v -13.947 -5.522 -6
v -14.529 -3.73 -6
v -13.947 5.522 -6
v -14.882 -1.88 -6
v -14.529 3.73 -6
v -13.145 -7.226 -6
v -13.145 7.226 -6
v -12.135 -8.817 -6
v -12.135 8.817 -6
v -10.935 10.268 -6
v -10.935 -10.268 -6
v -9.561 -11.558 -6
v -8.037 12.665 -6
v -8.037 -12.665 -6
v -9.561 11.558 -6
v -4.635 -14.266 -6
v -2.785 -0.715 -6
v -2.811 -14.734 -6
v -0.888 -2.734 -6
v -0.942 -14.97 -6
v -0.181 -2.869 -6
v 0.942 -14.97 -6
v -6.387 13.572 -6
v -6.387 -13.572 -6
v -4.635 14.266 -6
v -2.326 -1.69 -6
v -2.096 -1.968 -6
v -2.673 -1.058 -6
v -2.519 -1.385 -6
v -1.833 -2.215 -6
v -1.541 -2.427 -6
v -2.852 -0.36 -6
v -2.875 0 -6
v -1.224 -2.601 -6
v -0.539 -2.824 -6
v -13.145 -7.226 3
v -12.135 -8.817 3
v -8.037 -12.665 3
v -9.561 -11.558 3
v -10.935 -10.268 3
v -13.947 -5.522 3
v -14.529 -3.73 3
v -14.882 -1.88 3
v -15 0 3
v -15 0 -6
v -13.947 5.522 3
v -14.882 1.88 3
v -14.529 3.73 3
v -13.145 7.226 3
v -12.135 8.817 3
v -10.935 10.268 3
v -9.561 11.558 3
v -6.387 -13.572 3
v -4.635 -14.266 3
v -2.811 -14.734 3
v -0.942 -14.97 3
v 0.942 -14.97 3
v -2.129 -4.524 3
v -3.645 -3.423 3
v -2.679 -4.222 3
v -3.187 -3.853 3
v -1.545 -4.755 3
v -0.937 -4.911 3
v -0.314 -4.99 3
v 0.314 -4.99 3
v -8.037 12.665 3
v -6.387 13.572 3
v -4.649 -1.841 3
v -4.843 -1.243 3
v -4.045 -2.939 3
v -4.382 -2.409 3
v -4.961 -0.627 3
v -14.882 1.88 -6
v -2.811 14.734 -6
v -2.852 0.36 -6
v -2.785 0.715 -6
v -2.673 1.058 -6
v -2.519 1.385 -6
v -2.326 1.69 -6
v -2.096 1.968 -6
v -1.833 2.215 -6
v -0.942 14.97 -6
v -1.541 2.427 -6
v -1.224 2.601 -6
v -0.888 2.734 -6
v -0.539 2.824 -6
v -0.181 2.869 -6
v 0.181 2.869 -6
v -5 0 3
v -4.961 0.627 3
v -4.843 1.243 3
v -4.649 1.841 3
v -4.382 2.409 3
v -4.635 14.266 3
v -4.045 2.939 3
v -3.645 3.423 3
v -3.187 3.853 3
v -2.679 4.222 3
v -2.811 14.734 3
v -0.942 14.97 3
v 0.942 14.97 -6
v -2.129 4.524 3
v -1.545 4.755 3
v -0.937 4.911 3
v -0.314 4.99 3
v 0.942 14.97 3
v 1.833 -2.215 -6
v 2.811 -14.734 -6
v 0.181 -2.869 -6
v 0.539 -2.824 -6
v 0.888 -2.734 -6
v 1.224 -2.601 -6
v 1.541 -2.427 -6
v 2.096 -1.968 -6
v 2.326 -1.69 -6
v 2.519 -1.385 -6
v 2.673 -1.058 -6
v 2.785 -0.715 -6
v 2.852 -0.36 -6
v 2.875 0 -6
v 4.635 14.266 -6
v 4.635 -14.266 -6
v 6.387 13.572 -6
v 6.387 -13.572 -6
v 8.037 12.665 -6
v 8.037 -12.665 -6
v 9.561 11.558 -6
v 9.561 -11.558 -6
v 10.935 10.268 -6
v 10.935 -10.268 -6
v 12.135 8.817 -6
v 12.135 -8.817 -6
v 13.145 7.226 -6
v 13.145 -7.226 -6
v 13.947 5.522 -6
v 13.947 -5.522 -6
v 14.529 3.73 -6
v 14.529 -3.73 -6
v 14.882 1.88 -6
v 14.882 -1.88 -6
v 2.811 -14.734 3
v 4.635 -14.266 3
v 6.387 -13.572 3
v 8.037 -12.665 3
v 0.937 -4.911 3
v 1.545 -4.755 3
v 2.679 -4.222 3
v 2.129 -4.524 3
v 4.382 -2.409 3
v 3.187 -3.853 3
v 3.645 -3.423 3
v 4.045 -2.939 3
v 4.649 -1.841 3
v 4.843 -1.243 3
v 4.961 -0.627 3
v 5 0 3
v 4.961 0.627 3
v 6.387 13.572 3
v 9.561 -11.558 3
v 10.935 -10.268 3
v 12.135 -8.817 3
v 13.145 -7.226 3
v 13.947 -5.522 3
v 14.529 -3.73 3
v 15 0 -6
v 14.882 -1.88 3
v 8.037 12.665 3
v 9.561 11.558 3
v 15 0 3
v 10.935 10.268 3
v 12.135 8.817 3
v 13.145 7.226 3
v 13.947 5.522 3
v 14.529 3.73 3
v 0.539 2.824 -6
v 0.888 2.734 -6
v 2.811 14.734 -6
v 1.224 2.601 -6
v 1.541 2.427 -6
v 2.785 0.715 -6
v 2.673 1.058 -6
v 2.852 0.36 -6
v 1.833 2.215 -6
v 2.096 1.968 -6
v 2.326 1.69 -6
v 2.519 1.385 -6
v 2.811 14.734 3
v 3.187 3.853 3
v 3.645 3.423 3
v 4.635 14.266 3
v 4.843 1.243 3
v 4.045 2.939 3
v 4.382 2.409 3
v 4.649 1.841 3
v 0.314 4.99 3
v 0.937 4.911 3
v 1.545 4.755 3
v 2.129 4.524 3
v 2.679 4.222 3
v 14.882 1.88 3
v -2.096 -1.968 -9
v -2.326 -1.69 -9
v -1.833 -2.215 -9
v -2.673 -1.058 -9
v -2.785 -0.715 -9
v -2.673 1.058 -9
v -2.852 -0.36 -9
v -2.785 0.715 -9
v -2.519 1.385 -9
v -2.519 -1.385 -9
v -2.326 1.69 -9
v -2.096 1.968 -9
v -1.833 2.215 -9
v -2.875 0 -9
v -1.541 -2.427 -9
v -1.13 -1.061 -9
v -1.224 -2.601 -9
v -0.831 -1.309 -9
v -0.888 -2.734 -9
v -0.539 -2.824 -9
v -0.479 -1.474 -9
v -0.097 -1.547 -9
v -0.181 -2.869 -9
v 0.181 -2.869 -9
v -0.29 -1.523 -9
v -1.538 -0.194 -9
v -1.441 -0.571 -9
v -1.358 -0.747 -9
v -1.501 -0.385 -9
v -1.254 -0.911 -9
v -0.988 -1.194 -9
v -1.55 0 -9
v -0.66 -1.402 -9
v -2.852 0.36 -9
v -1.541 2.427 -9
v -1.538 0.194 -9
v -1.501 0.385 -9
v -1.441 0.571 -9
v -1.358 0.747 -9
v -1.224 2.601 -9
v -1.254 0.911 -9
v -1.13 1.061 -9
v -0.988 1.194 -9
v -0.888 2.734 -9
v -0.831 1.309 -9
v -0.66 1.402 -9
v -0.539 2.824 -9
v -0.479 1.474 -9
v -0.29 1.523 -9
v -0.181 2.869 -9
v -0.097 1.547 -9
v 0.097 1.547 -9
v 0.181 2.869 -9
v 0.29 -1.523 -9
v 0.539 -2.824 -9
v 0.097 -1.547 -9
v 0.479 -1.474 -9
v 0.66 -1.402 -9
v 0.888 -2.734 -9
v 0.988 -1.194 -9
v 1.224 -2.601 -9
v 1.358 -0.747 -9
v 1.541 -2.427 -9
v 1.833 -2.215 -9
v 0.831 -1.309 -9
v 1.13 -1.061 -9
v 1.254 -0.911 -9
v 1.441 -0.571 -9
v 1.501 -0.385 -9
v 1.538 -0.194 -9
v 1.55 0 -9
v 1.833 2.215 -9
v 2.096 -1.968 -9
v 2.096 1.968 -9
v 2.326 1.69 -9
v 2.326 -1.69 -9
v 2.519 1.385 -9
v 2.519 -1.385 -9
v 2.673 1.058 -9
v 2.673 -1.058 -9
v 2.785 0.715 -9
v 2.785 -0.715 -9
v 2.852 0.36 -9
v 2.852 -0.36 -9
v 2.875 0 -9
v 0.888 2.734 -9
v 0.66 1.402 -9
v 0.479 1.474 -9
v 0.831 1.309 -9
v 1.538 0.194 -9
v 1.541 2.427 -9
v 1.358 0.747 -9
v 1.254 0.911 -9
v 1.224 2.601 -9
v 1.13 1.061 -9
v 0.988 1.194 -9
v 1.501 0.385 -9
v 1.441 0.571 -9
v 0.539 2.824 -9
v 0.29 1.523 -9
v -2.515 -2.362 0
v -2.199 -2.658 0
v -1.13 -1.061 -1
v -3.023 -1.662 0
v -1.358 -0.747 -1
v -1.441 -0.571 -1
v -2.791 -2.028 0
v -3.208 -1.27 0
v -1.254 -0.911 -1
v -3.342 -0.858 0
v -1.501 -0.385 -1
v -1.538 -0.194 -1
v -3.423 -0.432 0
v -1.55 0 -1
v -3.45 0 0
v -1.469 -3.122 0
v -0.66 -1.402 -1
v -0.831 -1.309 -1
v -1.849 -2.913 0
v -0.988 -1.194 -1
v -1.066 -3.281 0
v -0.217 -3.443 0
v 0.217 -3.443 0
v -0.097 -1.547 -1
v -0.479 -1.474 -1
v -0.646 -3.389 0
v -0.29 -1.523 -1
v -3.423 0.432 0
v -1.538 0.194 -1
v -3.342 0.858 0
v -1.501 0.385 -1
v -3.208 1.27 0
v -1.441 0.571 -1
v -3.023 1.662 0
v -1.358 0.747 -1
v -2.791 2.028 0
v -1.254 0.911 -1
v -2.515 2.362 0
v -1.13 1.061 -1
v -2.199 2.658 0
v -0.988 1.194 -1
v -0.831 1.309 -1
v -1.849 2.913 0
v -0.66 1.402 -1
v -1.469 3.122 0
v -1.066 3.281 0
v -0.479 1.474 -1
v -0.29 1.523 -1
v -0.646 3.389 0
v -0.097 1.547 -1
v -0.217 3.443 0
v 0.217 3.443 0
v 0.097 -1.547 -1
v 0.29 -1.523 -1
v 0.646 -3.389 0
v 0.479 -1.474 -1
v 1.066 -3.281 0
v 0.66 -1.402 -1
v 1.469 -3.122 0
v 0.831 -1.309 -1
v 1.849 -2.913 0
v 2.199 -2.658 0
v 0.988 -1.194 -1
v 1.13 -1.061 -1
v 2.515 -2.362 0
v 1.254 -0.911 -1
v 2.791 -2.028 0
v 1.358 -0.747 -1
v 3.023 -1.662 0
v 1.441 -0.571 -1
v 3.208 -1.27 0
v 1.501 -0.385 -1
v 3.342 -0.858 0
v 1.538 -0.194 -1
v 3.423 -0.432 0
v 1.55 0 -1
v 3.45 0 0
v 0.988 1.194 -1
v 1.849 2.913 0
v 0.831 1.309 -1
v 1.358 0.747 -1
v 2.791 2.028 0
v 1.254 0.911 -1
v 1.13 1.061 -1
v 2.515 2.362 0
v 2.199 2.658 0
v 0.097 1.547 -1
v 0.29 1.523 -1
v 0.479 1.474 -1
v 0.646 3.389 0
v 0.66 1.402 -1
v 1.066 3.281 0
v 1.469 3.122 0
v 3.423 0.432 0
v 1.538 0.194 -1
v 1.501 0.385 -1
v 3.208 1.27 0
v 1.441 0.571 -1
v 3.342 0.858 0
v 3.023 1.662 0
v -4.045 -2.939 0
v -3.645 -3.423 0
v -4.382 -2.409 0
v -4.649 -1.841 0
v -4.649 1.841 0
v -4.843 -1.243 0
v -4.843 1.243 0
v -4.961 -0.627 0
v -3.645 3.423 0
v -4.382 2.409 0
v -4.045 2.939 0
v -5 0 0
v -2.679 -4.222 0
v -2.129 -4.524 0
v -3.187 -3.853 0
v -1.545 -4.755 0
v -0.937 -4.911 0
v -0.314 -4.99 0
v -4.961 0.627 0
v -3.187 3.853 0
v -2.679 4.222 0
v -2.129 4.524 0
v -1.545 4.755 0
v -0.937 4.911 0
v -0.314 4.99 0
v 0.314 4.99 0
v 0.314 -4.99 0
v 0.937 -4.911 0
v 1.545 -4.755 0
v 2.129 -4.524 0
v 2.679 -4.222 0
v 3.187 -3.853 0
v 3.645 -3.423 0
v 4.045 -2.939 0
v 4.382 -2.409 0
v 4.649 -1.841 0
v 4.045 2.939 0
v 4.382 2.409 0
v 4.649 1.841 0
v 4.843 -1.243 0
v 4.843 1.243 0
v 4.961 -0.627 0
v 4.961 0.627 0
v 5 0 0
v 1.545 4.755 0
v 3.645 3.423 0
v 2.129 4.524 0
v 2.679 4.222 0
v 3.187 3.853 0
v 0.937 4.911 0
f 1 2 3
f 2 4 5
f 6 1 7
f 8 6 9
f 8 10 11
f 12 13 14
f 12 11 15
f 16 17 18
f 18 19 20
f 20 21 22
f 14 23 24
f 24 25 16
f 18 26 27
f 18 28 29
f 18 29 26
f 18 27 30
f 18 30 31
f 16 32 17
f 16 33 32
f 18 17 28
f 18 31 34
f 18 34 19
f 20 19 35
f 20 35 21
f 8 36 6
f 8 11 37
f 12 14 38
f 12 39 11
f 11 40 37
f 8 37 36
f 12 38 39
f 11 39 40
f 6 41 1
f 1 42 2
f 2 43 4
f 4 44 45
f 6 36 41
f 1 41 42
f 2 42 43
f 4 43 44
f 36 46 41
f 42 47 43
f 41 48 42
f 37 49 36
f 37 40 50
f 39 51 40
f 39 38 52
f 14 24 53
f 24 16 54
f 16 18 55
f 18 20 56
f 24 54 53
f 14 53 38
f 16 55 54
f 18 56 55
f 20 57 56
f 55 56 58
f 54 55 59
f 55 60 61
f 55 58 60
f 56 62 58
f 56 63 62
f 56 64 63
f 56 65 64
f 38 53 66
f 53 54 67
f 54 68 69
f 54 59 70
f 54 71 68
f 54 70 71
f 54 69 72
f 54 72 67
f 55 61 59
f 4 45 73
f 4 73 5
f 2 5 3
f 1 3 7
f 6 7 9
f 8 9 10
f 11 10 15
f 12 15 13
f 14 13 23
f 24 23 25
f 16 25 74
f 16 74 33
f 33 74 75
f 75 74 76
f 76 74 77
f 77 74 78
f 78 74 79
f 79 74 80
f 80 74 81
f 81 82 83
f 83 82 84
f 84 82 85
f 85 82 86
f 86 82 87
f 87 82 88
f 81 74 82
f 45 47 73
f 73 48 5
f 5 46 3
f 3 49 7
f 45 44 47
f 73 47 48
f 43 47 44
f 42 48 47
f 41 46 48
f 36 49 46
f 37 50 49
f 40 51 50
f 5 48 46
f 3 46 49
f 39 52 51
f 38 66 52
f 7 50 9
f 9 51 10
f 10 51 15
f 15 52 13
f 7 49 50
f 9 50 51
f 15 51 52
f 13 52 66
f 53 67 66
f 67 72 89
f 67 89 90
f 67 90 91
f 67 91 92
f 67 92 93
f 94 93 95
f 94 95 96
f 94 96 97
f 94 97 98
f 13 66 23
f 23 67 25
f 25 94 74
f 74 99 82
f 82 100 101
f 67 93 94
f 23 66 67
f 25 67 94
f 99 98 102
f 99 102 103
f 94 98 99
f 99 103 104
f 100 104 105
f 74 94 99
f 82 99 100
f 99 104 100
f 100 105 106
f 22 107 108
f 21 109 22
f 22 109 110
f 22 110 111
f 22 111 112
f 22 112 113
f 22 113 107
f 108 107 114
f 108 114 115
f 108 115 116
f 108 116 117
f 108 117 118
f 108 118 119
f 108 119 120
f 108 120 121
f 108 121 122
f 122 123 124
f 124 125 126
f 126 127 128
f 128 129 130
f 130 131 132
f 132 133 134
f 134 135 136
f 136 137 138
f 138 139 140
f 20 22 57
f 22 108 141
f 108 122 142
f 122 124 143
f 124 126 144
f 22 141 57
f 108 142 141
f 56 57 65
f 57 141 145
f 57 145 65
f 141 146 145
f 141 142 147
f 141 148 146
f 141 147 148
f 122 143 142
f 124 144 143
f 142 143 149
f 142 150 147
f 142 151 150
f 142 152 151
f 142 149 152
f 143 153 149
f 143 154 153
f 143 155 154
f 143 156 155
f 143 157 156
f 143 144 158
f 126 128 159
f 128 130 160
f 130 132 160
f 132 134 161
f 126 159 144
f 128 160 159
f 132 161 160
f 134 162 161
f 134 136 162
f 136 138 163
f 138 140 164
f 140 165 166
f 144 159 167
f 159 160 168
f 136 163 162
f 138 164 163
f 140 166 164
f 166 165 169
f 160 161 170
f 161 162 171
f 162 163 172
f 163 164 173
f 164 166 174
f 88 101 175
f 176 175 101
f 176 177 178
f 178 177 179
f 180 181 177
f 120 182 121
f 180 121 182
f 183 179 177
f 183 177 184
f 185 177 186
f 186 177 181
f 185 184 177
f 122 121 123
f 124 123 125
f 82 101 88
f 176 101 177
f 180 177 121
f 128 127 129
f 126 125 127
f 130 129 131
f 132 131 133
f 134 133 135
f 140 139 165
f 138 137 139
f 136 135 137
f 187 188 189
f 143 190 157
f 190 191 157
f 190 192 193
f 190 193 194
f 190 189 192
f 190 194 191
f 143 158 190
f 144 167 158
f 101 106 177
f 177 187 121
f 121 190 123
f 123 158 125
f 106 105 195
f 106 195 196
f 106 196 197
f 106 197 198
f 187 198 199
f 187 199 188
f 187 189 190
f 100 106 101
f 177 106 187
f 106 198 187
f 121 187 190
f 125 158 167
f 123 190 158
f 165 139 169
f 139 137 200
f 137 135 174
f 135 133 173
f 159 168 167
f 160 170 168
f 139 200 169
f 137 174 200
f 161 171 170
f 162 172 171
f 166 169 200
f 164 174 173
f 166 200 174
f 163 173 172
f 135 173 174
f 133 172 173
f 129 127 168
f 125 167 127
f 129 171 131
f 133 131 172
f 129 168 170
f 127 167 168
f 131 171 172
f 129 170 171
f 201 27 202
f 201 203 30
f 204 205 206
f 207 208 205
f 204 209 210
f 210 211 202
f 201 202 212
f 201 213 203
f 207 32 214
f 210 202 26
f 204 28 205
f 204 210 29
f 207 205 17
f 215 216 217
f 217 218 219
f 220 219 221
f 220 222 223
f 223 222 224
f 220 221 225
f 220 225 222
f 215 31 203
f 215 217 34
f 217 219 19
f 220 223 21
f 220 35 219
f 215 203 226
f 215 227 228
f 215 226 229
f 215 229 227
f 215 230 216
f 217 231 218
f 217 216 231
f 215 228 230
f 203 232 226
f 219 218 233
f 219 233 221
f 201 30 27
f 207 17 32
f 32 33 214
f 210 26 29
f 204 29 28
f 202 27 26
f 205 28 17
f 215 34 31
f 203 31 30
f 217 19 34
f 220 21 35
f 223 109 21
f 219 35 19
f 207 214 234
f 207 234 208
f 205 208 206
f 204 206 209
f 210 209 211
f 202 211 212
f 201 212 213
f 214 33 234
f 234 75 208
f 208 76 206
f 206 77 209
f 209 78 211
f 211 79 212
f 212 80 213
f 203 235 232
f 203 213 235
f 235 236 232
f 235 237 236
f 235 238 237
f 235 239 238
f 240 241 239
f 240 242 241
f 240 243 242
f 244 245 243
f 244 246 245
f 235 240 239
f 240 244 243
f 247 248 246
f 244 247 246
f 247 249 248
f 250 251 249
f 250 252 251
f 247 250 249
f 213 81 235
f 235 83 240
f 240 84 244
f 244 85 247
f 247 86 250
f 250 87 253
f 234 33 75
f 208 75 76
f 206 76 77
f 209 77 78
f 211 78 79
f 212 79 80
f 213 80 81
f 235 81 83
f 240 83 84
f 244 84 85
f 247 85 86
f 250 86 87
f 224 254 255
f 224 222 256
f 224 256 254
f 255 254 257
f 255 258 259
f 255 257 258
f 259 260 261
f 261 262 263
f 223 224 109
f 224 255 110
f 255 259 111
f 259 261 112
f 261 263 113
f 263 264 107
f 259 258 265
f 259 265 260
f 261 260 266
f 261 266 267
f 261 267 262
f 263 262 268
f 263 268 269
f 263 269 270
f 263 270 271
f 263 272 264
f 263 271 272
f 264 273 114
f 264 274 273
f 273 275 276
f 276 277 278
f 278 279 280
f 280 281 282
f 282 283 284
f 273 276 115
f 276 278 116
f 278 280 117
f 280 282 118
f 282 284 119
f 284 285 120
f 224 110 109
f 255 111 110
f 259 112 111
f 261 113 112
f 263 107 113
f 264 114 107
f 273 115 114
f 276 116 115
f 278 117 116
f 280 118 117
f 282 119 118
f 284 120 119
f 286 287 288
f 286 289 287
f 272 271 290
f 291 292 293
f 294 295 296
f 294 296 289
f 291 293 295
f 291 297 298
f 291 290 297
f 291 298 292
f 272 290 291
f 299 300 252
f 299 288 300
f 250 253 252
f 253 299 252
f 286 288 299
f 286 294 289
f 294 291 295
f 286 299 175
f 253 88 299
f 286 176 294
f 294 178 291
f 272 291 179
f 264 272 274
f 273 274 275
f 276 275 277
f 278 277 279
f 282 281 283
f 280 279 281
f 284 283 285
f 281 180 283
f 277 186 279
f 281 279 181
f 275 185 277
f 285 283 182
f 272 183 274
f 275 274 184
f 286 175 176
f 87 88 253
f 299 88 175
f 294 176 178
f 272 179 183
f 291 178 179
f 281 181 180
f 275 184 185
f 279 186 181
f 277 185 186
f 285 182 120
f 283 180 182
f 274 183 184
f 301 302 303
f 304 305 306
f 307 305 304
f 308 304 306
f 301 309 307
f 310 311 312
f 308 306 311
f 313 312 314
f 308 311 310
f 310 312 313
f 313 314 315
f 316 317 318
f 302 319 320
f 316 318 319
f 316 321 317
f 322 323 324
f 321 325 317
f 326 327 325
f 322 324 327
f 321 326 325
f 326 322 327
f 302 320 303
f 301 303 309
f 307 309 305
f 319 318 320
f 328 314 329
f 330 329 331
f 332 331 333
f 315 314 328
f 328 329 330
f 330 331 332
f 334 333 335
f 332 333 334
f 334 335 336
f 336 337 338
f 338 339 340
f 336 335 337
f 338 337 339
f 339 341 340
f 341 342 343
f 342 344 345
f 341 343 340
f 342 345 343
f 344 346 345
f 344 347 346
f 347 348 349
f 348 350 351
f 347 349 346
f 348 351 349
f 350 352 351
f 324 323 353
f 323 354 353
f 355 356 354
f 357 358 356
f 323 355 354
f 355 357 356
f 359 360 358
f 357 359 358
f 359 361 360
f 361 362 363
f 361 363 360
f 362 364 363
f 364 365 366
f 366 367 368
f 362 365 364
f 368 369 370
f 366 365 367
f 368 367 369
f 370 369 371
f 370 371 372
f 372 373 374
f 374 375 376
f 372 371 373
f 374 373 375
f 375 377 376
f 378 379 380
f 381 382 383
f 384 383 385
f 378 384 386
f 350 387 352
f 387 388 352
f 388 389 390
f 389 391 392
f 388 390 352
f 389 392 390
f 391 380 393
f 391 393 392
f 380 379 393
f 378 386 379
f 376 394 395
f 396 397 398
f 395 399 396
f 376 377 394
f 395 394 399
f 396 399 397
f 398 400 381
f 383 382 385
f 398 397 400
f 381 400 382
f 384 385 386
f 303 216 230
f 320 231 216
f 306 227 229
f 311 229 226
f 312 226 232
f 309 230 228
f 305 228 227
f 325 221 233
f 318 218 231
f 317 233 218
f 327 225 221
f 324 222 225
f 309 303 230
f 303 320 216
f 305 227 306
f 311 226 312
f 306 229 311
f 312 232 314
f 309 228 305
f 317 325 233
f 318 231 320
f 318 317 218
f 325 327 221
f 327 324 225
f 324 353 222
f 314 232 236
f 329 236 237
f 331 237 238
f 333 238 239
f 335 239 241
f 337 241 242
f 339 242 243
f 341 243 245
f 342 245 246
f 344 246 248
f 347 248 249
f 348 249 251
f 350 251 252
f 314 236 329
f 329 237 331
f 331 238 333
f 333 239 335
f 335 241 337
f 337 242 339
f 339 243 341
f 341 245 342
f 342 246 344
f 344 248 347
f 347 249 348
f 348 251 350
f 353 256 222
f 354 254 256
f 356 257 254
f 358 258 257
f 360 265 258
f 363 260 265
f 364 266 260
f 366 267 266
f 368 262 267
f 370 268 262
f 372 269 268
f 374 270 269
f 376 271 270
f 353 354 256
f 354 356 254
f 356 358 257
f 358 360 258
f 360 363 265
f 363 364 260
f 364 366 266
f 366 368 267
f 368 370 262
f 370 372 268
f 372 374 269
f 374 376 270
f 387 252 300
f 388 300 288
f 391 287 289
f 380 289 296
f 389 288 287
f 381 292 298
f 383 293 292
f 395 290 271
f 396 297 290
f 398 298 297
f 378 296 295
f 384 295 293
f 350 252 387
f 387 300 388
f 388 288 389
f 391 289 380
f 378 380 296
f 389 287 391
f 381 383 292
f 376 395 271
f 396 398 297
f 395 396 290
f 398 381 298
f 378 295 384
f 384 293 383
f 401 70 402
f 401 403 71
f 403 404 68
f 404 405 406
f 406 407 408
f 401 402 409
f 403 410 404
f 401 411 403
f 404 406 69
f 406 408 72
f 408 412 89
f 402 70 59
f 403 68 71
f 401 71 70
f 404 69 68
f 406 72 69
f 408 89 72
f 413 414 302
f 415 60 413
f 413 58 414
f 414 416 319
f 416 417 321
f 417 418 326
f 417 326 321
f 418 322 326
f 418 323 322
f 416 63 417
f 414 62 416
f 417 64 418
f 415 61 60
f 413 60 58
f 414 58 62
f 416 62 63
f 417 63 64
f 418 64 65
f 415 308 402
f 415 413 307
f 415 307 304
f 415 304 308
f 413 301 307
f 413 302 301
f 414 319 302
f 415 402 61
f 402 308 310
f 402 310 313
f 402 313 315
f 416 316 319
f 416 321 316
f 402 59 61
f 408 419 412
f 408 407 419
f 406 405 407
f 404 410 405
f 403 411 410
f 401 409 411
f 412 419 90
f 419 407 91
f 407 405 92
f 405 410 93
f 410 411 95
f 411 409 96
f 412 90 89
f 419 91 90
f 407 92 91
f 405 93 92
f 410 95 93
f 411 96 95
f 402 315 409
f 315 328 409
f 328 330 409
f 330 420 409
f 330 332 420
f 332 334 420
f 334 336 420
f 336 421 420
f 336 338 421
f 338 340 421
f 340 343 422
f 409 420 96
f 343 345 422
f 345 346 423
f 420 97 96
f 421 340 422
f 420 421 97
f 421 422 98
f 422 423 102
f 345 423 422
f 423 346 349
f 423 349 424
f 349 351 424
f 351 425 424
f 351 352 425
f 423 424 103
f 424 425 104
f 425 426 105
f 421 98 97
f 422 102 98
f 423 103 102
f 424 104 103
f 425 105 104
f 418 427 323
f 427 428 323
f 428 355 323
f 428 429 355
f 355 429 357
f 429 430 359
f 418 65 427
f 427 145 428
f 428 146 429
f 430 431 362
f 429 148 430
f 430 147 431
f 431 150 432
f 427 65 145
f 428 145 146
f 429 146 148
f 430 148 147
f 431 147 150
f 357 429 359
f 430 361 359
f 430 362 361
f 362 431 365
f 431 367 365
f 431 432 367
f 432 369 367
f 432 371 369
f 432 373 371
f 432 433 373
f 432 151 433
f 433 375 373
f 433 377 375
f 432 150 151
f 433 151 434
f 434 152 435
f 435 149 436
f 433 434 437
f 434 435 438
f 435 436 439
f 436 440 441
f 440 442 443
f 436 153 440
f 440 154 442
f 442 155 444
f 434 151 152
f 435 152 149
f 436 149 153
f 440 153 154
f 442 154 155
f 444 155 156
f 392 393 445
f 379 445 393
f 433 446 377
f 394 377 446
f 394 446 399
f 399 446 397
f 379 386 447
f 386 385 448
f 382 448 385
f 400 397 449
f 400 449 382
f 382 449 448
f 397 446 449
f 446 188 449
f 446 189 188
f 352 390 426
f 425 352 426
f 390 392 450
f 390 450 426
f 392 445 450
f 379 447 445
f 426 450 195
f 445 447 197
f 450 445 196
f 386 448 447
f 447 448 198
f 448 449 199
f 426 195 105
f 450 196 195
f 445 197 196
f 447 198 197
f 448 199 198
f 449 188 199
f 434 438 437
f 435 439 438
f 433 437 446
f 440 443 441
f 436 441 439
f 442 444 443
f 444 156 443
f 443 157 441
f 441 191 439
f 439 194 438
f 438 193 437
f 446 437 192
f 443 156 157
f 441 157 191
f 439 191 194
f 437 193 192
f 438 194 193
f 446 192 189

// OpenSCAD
$fn = 50;

difference() {
	union() {
		translate(v = [0, 0, -6.0]) {
			cylinder(h = 9, r = 15.0);
		}
		#translate(v = [0, 0, -9.0]) {
			cylinder(h = 9, r = 2.875);
		}
	}
	union() {
		translate(v = [0, 0, 0]) {
			rotate(a = [0, 0, 0]) {
				difference() {
					union() {
						translate(v = [0, 0, -9.0]) {
							cylinder(h = 9, r = 1.25);
						}
						translate(v = [0, 0, -1.0]) {
							cylinder(h = 1.0, r1 = 1.55, r2 = 3.45);
						}
						translate(v = [0, 0, -9.0]) {
							cylinder(h = 9, r = 1.55);
						}
						translate(v = [0, 0, -9.0]) {
							cylinder(h = 9, r = 1.25);
						}
					}
					union();
				}
			}
		}
		#cylinder(h = 3, r = 5.0);
	}
}
